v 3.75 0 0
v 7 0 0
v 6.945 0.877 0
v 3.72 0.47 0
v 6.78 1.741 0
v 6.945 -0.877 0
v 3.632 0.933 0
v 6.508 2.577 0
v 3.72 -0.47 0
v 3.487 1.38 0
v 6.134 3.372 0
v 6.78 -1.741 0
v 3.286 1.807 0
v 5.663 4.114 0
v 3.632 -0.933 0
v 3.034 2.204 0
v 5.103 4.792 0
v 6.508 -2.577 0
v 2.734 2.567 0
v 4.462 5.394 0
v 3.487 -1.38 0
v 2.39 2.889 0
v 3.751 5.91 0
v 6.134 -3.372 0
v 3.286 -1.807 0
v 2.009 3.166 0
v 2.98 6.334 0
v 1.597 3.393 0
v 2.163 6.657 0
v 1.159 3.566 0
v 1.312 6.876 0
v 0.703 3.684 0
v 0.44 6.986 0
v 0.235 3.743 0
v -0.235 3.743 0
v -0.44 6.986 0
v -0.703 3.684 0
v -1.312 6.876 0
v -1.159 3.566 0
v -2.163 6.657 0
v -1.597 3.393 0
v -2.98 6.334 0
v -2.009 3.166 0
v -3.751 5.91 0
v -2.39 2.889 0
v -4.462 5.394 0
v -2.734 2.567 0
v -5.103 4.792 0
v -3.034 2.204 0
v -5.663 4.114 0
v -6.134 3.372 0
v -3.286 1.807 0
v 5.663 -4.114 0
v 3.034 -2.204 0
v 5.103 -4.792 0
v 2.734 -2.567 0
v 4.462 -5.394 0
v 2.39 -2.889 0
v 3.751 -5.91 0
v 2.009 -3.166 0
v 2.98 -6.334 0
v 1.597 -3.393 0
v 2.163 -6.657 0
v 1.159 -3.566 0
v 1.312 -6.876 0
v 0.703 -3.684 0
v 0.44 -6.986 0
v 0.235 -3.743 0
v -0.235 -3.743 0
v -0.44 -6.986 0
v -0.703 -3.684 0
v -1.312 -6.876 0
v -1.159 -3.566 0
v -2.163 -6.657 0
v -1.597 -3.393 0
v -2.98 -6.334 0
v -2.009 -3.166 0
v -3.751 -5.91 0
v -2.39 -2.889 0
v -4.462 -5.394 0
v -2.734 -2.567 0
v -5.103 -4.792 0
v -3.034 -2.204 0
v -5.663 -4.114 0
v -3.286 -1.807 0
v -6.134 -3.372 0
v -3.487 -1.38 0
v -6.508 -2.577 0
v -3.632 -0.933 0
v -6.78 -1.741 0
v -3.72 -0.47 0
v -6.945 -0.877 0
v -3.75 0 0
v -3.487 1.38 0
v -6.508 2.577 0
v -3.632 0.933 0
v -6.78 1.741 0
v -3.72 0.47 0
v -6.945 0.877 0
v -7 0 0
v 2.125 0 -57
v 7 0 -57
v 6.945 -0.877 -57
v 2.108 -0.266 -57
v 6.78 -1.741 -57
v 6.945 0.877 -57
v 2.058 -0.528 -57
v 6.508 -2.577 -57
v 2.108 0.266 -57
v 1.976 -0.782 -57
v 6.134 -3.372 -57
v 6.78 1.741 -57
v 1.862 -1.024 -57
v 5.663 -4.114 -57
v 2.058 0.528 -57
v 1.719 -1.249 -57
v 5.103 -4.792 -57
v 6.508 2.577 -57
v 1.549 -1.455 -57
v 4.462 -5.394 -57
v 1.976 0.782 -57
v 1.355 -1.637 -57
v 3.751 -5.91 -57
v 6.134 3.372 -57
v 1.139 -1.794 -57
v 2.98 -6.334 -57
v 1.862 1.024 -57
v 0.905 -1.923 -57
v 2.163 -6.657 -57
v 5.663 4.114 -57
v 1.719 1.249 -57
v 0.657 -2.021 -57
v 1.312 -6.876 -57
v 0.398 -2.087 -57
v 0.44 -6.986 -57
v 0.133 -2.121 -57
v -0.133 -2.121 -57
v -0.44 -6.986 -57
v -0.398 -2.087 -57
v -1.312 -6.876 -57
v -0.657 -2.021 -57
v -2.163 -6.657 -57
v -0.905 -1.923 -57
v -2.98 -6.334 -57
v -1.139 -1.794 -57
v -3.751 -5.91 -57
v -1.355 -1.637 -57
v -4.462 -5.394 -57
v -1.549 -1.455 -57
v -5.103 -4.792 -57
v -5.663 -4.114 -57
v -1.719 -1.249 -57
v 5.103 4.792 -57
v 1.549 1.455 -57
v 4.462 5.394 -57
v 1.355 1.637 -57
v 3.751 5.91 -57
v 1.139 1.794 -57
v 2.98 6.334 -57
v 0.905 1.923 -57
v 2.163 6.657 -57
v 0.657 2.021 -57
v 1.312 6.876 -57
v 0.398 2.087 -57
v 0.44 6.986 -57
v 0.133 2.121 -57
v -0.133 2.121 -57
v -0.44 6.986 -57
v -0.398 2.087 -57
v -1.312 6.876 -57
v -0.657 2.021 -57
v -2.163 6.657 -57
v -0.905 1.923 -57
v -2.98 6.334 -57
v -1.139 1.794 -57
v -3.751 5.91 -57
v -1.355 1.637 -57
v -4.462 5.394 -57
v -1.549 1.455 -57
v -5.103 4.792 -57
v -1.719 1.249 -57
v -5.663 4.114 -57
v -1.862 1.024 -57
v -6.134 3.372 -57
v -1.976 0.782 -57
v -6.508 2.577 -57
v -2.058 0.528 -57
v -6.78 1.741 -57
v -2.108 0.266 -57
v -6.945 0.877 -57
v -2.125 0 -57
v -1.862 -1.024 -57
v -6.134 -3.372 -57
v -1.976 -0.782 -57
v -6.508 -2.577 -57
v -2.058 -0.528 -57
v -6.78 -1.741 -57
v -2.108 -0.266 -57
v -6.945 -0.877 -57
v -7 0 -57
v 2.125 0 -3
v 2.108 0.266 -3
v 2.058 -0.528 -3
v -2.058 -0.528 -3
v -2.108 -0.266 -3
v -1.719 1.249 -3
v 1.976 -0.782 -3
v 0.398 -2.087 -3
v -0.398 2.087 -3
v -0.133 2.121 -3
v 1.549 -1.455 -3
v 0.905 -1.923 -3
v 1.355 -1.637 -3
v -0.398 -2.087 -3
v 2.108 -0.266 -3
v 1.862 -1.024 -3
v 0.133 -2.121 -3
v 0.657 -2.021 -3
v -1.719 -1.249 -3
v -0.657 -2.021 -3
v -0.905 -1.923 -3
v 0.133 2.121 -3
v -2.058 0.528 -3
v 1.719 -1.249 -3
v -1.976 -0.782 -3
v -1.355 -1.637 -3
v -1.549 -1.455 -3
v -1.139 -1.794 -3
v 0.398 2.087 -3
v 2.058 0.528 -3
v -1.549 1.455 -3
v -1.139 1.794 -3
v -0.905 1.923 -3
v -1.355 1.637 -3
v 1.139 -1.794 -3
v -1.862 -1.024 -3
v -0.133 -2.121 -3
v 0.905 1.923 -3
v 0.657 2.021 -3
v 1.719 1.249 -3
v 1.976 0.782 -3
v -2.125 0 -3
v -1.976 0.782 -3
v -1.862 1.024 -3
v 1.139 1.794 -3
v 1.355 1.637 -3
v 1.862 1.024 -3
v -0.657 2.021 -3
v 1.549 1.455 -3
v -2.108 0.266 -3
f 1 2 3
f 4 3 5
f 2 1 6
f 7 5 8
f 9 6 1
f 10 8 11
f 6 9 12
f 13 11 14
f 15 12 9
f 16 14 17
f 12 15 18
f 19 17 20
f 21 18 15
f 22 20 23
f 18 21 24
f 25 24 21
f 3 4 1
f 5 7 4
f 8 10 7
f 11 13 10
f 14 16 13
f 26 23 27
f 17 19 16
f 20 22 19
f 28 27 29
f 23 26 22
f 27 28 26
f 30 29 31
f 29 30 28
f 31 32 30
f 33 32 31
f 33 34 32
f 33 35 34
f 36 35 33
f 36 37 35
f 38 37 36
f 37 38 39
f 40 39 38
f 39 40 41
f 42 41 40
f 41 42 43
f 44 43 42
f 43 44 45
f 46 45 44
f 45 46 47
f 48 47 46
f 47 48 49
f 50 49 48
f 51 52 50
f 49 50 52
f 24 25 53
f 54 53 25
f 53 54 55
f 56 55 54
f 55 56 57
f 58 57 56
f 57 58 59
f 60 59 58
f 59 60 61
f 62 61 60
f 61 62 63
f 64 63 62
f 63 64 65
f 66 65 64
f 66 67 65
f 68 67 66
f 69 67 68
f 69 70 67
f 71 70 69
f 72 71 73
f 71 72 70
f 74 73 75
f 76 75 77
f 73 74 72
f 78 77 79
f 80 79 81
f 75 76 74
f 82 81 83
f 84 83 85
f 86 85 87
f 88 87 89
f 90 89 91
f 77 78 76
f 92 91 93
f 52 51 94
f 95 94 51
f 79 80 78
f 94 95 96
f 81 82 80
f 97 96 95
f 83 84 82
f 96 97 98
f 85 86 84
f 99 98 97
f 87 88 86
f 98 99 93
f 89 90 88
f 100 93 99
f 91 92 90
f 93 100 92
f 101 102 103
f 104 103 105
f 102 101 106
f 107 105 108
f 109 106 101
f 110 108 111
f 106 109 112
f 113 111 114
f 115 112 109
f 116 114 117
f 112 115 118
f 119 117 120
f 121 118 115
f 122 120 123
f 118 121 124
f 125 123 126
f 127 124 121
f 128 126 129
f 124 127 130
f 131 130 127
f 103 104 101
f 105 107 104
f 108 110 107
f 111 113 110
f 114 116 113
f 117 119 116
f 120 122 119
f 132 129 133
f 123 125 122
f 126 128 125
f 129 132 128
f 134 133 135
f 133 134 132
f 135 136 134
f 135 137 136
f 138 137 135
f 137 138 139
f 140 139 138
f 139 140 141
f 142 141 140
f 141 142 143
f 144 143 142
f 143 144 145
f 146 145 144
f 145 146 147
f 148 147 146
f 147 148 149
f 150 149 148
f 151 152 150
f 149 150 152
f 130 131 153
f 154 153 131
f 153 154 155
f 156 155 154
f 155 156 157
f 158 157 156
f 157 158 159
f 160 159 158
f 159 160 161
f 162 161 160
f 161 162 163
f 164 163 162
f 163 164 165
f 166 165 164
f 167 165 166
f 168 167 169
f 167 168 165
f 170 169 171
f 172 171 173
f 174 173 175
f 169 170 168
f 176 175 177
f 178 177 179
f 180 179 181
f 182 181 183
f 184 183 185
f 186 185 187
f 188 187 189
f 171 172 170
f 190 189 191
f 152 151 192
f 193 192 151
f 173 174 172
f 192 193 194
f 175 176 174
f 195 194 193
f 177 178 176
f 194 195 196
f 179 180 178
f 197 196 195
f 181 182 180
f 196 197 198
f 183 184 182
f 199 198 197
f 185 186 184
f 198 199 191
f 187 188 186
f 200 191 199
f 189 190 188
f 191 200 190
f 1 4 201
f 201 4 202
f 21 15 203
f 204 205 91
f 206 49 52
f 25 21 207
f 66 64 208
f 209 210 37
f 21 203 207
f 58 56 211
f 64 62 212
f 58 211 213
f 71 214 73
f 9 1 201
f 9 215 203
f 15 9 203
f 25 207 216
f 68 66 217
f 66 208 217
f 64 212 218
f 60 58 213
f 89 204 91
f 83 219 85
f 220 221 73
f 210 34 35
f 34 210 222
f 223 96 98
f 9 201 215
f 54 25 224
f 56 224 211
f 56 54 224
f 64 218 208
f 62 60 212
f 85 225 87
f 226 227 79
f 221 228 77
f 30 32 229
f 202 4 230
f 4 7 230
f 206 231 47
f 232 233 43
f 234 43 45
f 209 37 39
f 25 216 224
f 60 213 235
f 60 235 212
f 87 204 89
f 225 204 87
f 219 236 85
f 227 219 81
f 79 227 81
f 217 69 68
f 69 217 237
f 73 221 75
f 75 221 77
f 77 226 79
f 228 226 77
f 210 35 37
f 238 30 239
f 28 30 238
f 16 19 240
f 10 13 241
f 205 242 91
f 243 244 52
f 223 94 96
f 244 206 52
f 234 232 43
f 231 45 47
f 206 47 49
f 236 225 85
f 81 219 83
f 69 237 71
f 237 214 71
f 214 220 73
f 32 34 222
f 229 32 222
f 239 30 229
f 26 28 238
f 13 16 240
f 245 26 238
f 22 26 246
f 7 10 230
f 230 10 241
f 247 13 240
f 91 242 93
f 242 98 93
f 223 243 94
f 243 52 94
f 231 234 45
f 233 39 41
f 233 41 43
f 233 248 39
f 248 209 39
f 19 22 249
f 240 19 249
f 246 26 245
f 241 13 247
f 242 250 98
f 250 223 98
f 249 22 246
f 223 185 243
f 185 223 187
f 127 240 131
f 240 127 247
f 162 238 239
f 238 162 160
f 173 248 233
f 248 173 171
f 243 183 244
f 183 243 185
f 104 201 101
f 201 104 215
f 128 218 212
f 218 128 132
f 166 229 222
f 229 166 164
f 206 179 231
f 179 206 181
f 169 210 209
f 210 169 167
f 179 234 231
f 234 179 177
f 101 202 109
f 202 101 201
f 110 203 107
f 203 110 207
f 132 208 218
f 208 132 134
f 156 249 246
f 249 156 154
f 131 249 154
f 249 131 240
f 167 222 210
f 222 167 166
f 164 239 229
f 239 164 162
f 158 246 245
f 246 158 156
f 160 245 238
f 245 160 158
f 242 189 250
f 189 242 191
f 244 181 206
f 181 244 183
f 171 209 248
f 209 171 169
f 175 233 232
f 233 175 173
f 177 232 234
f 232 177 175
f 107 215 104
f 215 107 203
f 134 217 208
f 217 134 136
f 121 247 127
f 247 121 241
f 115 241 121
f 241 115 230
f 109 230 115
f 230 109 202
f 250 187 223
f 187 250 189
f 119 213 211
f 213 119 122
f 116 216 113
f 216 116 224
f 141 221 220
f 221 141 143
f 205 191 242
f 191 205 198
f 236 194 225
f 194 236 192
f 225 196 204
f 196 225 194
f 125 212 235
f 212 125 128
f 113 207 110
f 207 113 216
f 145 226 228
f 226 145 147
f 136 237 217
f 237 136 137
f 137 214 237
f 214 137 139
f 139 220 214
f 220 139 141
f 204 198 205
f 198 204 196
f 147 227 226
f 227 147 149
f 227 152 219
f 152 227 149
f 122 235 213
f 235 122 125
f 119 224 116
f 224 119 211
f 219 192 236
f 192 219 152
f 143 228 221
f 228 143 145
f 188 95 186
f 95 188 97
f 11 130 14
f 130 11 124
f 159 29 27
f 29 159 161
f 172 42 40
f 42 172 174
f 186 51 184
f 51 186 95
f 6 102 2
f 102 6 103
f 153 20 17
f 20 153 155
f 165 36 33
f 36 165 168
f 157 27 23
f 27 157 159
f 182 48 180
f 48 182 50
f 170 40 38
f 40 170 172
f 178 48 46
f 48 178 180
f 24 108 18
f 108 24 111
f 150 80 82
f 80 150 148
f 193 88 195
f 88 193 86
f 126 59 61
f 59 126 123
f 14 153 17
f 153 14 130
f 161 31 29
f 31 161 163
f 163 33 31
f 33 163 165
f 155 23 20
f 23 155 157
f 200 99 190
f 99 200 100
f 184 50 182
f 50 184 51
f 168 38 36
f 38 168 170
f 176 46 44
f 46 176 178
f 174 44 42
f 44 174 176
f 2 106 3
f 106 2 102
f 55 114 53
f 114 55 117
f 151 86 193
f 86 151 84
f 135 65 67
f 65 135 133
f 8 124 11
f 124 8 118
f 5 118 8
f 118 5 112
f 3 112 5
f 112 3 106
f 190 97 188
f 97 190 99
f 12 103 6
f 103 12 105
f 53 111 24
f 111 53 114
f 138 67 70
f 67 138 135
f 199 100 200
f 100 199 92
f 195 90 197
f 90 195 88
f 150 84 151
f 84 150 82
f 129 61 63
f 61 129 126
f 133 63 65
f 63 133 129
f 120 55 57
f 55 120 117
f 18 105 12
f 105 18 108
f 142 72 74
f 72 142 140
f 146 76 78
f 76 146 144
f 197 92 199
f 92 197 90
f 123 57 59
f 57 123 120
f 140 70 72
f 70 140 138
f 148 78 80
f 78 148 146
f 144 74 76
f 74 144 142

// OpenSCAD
$fn = 50;


difference() {
	union() {
		translate(v = [0, 0, -57.0000000000]) {
			cylinder(h = 57, r = 7.0000000000);
		}
		cylinder(h = 0, r = 13.0000000000);
	}
	union() {
		translate(v = [0, 0, 0]) {
			rotate(a = [0, 0, 0]) {
				difference() {
					union() {
						#translate(v = [0, 0, -57.0000000000]) {
							cylinder(h = 57, r = 2.0000000000);
						}
						#translate(v = [0, 0, -3]) {
							cylinder(h = 3, r = 7.0000000000, r1 = 2.1250000000, r2 = 3.7500000000);
						}
						#translate(v = [0, 0, -57.0000000000]) {
							cylinder(h = 57, r = 2.1250000000);
						}
						#translate(v = [0, 0, -57.0000000000]) {
							cylinder(h = 57, r = 2.0000000000);
						}
					}
					union();
				}
			}
		}
	}
}
